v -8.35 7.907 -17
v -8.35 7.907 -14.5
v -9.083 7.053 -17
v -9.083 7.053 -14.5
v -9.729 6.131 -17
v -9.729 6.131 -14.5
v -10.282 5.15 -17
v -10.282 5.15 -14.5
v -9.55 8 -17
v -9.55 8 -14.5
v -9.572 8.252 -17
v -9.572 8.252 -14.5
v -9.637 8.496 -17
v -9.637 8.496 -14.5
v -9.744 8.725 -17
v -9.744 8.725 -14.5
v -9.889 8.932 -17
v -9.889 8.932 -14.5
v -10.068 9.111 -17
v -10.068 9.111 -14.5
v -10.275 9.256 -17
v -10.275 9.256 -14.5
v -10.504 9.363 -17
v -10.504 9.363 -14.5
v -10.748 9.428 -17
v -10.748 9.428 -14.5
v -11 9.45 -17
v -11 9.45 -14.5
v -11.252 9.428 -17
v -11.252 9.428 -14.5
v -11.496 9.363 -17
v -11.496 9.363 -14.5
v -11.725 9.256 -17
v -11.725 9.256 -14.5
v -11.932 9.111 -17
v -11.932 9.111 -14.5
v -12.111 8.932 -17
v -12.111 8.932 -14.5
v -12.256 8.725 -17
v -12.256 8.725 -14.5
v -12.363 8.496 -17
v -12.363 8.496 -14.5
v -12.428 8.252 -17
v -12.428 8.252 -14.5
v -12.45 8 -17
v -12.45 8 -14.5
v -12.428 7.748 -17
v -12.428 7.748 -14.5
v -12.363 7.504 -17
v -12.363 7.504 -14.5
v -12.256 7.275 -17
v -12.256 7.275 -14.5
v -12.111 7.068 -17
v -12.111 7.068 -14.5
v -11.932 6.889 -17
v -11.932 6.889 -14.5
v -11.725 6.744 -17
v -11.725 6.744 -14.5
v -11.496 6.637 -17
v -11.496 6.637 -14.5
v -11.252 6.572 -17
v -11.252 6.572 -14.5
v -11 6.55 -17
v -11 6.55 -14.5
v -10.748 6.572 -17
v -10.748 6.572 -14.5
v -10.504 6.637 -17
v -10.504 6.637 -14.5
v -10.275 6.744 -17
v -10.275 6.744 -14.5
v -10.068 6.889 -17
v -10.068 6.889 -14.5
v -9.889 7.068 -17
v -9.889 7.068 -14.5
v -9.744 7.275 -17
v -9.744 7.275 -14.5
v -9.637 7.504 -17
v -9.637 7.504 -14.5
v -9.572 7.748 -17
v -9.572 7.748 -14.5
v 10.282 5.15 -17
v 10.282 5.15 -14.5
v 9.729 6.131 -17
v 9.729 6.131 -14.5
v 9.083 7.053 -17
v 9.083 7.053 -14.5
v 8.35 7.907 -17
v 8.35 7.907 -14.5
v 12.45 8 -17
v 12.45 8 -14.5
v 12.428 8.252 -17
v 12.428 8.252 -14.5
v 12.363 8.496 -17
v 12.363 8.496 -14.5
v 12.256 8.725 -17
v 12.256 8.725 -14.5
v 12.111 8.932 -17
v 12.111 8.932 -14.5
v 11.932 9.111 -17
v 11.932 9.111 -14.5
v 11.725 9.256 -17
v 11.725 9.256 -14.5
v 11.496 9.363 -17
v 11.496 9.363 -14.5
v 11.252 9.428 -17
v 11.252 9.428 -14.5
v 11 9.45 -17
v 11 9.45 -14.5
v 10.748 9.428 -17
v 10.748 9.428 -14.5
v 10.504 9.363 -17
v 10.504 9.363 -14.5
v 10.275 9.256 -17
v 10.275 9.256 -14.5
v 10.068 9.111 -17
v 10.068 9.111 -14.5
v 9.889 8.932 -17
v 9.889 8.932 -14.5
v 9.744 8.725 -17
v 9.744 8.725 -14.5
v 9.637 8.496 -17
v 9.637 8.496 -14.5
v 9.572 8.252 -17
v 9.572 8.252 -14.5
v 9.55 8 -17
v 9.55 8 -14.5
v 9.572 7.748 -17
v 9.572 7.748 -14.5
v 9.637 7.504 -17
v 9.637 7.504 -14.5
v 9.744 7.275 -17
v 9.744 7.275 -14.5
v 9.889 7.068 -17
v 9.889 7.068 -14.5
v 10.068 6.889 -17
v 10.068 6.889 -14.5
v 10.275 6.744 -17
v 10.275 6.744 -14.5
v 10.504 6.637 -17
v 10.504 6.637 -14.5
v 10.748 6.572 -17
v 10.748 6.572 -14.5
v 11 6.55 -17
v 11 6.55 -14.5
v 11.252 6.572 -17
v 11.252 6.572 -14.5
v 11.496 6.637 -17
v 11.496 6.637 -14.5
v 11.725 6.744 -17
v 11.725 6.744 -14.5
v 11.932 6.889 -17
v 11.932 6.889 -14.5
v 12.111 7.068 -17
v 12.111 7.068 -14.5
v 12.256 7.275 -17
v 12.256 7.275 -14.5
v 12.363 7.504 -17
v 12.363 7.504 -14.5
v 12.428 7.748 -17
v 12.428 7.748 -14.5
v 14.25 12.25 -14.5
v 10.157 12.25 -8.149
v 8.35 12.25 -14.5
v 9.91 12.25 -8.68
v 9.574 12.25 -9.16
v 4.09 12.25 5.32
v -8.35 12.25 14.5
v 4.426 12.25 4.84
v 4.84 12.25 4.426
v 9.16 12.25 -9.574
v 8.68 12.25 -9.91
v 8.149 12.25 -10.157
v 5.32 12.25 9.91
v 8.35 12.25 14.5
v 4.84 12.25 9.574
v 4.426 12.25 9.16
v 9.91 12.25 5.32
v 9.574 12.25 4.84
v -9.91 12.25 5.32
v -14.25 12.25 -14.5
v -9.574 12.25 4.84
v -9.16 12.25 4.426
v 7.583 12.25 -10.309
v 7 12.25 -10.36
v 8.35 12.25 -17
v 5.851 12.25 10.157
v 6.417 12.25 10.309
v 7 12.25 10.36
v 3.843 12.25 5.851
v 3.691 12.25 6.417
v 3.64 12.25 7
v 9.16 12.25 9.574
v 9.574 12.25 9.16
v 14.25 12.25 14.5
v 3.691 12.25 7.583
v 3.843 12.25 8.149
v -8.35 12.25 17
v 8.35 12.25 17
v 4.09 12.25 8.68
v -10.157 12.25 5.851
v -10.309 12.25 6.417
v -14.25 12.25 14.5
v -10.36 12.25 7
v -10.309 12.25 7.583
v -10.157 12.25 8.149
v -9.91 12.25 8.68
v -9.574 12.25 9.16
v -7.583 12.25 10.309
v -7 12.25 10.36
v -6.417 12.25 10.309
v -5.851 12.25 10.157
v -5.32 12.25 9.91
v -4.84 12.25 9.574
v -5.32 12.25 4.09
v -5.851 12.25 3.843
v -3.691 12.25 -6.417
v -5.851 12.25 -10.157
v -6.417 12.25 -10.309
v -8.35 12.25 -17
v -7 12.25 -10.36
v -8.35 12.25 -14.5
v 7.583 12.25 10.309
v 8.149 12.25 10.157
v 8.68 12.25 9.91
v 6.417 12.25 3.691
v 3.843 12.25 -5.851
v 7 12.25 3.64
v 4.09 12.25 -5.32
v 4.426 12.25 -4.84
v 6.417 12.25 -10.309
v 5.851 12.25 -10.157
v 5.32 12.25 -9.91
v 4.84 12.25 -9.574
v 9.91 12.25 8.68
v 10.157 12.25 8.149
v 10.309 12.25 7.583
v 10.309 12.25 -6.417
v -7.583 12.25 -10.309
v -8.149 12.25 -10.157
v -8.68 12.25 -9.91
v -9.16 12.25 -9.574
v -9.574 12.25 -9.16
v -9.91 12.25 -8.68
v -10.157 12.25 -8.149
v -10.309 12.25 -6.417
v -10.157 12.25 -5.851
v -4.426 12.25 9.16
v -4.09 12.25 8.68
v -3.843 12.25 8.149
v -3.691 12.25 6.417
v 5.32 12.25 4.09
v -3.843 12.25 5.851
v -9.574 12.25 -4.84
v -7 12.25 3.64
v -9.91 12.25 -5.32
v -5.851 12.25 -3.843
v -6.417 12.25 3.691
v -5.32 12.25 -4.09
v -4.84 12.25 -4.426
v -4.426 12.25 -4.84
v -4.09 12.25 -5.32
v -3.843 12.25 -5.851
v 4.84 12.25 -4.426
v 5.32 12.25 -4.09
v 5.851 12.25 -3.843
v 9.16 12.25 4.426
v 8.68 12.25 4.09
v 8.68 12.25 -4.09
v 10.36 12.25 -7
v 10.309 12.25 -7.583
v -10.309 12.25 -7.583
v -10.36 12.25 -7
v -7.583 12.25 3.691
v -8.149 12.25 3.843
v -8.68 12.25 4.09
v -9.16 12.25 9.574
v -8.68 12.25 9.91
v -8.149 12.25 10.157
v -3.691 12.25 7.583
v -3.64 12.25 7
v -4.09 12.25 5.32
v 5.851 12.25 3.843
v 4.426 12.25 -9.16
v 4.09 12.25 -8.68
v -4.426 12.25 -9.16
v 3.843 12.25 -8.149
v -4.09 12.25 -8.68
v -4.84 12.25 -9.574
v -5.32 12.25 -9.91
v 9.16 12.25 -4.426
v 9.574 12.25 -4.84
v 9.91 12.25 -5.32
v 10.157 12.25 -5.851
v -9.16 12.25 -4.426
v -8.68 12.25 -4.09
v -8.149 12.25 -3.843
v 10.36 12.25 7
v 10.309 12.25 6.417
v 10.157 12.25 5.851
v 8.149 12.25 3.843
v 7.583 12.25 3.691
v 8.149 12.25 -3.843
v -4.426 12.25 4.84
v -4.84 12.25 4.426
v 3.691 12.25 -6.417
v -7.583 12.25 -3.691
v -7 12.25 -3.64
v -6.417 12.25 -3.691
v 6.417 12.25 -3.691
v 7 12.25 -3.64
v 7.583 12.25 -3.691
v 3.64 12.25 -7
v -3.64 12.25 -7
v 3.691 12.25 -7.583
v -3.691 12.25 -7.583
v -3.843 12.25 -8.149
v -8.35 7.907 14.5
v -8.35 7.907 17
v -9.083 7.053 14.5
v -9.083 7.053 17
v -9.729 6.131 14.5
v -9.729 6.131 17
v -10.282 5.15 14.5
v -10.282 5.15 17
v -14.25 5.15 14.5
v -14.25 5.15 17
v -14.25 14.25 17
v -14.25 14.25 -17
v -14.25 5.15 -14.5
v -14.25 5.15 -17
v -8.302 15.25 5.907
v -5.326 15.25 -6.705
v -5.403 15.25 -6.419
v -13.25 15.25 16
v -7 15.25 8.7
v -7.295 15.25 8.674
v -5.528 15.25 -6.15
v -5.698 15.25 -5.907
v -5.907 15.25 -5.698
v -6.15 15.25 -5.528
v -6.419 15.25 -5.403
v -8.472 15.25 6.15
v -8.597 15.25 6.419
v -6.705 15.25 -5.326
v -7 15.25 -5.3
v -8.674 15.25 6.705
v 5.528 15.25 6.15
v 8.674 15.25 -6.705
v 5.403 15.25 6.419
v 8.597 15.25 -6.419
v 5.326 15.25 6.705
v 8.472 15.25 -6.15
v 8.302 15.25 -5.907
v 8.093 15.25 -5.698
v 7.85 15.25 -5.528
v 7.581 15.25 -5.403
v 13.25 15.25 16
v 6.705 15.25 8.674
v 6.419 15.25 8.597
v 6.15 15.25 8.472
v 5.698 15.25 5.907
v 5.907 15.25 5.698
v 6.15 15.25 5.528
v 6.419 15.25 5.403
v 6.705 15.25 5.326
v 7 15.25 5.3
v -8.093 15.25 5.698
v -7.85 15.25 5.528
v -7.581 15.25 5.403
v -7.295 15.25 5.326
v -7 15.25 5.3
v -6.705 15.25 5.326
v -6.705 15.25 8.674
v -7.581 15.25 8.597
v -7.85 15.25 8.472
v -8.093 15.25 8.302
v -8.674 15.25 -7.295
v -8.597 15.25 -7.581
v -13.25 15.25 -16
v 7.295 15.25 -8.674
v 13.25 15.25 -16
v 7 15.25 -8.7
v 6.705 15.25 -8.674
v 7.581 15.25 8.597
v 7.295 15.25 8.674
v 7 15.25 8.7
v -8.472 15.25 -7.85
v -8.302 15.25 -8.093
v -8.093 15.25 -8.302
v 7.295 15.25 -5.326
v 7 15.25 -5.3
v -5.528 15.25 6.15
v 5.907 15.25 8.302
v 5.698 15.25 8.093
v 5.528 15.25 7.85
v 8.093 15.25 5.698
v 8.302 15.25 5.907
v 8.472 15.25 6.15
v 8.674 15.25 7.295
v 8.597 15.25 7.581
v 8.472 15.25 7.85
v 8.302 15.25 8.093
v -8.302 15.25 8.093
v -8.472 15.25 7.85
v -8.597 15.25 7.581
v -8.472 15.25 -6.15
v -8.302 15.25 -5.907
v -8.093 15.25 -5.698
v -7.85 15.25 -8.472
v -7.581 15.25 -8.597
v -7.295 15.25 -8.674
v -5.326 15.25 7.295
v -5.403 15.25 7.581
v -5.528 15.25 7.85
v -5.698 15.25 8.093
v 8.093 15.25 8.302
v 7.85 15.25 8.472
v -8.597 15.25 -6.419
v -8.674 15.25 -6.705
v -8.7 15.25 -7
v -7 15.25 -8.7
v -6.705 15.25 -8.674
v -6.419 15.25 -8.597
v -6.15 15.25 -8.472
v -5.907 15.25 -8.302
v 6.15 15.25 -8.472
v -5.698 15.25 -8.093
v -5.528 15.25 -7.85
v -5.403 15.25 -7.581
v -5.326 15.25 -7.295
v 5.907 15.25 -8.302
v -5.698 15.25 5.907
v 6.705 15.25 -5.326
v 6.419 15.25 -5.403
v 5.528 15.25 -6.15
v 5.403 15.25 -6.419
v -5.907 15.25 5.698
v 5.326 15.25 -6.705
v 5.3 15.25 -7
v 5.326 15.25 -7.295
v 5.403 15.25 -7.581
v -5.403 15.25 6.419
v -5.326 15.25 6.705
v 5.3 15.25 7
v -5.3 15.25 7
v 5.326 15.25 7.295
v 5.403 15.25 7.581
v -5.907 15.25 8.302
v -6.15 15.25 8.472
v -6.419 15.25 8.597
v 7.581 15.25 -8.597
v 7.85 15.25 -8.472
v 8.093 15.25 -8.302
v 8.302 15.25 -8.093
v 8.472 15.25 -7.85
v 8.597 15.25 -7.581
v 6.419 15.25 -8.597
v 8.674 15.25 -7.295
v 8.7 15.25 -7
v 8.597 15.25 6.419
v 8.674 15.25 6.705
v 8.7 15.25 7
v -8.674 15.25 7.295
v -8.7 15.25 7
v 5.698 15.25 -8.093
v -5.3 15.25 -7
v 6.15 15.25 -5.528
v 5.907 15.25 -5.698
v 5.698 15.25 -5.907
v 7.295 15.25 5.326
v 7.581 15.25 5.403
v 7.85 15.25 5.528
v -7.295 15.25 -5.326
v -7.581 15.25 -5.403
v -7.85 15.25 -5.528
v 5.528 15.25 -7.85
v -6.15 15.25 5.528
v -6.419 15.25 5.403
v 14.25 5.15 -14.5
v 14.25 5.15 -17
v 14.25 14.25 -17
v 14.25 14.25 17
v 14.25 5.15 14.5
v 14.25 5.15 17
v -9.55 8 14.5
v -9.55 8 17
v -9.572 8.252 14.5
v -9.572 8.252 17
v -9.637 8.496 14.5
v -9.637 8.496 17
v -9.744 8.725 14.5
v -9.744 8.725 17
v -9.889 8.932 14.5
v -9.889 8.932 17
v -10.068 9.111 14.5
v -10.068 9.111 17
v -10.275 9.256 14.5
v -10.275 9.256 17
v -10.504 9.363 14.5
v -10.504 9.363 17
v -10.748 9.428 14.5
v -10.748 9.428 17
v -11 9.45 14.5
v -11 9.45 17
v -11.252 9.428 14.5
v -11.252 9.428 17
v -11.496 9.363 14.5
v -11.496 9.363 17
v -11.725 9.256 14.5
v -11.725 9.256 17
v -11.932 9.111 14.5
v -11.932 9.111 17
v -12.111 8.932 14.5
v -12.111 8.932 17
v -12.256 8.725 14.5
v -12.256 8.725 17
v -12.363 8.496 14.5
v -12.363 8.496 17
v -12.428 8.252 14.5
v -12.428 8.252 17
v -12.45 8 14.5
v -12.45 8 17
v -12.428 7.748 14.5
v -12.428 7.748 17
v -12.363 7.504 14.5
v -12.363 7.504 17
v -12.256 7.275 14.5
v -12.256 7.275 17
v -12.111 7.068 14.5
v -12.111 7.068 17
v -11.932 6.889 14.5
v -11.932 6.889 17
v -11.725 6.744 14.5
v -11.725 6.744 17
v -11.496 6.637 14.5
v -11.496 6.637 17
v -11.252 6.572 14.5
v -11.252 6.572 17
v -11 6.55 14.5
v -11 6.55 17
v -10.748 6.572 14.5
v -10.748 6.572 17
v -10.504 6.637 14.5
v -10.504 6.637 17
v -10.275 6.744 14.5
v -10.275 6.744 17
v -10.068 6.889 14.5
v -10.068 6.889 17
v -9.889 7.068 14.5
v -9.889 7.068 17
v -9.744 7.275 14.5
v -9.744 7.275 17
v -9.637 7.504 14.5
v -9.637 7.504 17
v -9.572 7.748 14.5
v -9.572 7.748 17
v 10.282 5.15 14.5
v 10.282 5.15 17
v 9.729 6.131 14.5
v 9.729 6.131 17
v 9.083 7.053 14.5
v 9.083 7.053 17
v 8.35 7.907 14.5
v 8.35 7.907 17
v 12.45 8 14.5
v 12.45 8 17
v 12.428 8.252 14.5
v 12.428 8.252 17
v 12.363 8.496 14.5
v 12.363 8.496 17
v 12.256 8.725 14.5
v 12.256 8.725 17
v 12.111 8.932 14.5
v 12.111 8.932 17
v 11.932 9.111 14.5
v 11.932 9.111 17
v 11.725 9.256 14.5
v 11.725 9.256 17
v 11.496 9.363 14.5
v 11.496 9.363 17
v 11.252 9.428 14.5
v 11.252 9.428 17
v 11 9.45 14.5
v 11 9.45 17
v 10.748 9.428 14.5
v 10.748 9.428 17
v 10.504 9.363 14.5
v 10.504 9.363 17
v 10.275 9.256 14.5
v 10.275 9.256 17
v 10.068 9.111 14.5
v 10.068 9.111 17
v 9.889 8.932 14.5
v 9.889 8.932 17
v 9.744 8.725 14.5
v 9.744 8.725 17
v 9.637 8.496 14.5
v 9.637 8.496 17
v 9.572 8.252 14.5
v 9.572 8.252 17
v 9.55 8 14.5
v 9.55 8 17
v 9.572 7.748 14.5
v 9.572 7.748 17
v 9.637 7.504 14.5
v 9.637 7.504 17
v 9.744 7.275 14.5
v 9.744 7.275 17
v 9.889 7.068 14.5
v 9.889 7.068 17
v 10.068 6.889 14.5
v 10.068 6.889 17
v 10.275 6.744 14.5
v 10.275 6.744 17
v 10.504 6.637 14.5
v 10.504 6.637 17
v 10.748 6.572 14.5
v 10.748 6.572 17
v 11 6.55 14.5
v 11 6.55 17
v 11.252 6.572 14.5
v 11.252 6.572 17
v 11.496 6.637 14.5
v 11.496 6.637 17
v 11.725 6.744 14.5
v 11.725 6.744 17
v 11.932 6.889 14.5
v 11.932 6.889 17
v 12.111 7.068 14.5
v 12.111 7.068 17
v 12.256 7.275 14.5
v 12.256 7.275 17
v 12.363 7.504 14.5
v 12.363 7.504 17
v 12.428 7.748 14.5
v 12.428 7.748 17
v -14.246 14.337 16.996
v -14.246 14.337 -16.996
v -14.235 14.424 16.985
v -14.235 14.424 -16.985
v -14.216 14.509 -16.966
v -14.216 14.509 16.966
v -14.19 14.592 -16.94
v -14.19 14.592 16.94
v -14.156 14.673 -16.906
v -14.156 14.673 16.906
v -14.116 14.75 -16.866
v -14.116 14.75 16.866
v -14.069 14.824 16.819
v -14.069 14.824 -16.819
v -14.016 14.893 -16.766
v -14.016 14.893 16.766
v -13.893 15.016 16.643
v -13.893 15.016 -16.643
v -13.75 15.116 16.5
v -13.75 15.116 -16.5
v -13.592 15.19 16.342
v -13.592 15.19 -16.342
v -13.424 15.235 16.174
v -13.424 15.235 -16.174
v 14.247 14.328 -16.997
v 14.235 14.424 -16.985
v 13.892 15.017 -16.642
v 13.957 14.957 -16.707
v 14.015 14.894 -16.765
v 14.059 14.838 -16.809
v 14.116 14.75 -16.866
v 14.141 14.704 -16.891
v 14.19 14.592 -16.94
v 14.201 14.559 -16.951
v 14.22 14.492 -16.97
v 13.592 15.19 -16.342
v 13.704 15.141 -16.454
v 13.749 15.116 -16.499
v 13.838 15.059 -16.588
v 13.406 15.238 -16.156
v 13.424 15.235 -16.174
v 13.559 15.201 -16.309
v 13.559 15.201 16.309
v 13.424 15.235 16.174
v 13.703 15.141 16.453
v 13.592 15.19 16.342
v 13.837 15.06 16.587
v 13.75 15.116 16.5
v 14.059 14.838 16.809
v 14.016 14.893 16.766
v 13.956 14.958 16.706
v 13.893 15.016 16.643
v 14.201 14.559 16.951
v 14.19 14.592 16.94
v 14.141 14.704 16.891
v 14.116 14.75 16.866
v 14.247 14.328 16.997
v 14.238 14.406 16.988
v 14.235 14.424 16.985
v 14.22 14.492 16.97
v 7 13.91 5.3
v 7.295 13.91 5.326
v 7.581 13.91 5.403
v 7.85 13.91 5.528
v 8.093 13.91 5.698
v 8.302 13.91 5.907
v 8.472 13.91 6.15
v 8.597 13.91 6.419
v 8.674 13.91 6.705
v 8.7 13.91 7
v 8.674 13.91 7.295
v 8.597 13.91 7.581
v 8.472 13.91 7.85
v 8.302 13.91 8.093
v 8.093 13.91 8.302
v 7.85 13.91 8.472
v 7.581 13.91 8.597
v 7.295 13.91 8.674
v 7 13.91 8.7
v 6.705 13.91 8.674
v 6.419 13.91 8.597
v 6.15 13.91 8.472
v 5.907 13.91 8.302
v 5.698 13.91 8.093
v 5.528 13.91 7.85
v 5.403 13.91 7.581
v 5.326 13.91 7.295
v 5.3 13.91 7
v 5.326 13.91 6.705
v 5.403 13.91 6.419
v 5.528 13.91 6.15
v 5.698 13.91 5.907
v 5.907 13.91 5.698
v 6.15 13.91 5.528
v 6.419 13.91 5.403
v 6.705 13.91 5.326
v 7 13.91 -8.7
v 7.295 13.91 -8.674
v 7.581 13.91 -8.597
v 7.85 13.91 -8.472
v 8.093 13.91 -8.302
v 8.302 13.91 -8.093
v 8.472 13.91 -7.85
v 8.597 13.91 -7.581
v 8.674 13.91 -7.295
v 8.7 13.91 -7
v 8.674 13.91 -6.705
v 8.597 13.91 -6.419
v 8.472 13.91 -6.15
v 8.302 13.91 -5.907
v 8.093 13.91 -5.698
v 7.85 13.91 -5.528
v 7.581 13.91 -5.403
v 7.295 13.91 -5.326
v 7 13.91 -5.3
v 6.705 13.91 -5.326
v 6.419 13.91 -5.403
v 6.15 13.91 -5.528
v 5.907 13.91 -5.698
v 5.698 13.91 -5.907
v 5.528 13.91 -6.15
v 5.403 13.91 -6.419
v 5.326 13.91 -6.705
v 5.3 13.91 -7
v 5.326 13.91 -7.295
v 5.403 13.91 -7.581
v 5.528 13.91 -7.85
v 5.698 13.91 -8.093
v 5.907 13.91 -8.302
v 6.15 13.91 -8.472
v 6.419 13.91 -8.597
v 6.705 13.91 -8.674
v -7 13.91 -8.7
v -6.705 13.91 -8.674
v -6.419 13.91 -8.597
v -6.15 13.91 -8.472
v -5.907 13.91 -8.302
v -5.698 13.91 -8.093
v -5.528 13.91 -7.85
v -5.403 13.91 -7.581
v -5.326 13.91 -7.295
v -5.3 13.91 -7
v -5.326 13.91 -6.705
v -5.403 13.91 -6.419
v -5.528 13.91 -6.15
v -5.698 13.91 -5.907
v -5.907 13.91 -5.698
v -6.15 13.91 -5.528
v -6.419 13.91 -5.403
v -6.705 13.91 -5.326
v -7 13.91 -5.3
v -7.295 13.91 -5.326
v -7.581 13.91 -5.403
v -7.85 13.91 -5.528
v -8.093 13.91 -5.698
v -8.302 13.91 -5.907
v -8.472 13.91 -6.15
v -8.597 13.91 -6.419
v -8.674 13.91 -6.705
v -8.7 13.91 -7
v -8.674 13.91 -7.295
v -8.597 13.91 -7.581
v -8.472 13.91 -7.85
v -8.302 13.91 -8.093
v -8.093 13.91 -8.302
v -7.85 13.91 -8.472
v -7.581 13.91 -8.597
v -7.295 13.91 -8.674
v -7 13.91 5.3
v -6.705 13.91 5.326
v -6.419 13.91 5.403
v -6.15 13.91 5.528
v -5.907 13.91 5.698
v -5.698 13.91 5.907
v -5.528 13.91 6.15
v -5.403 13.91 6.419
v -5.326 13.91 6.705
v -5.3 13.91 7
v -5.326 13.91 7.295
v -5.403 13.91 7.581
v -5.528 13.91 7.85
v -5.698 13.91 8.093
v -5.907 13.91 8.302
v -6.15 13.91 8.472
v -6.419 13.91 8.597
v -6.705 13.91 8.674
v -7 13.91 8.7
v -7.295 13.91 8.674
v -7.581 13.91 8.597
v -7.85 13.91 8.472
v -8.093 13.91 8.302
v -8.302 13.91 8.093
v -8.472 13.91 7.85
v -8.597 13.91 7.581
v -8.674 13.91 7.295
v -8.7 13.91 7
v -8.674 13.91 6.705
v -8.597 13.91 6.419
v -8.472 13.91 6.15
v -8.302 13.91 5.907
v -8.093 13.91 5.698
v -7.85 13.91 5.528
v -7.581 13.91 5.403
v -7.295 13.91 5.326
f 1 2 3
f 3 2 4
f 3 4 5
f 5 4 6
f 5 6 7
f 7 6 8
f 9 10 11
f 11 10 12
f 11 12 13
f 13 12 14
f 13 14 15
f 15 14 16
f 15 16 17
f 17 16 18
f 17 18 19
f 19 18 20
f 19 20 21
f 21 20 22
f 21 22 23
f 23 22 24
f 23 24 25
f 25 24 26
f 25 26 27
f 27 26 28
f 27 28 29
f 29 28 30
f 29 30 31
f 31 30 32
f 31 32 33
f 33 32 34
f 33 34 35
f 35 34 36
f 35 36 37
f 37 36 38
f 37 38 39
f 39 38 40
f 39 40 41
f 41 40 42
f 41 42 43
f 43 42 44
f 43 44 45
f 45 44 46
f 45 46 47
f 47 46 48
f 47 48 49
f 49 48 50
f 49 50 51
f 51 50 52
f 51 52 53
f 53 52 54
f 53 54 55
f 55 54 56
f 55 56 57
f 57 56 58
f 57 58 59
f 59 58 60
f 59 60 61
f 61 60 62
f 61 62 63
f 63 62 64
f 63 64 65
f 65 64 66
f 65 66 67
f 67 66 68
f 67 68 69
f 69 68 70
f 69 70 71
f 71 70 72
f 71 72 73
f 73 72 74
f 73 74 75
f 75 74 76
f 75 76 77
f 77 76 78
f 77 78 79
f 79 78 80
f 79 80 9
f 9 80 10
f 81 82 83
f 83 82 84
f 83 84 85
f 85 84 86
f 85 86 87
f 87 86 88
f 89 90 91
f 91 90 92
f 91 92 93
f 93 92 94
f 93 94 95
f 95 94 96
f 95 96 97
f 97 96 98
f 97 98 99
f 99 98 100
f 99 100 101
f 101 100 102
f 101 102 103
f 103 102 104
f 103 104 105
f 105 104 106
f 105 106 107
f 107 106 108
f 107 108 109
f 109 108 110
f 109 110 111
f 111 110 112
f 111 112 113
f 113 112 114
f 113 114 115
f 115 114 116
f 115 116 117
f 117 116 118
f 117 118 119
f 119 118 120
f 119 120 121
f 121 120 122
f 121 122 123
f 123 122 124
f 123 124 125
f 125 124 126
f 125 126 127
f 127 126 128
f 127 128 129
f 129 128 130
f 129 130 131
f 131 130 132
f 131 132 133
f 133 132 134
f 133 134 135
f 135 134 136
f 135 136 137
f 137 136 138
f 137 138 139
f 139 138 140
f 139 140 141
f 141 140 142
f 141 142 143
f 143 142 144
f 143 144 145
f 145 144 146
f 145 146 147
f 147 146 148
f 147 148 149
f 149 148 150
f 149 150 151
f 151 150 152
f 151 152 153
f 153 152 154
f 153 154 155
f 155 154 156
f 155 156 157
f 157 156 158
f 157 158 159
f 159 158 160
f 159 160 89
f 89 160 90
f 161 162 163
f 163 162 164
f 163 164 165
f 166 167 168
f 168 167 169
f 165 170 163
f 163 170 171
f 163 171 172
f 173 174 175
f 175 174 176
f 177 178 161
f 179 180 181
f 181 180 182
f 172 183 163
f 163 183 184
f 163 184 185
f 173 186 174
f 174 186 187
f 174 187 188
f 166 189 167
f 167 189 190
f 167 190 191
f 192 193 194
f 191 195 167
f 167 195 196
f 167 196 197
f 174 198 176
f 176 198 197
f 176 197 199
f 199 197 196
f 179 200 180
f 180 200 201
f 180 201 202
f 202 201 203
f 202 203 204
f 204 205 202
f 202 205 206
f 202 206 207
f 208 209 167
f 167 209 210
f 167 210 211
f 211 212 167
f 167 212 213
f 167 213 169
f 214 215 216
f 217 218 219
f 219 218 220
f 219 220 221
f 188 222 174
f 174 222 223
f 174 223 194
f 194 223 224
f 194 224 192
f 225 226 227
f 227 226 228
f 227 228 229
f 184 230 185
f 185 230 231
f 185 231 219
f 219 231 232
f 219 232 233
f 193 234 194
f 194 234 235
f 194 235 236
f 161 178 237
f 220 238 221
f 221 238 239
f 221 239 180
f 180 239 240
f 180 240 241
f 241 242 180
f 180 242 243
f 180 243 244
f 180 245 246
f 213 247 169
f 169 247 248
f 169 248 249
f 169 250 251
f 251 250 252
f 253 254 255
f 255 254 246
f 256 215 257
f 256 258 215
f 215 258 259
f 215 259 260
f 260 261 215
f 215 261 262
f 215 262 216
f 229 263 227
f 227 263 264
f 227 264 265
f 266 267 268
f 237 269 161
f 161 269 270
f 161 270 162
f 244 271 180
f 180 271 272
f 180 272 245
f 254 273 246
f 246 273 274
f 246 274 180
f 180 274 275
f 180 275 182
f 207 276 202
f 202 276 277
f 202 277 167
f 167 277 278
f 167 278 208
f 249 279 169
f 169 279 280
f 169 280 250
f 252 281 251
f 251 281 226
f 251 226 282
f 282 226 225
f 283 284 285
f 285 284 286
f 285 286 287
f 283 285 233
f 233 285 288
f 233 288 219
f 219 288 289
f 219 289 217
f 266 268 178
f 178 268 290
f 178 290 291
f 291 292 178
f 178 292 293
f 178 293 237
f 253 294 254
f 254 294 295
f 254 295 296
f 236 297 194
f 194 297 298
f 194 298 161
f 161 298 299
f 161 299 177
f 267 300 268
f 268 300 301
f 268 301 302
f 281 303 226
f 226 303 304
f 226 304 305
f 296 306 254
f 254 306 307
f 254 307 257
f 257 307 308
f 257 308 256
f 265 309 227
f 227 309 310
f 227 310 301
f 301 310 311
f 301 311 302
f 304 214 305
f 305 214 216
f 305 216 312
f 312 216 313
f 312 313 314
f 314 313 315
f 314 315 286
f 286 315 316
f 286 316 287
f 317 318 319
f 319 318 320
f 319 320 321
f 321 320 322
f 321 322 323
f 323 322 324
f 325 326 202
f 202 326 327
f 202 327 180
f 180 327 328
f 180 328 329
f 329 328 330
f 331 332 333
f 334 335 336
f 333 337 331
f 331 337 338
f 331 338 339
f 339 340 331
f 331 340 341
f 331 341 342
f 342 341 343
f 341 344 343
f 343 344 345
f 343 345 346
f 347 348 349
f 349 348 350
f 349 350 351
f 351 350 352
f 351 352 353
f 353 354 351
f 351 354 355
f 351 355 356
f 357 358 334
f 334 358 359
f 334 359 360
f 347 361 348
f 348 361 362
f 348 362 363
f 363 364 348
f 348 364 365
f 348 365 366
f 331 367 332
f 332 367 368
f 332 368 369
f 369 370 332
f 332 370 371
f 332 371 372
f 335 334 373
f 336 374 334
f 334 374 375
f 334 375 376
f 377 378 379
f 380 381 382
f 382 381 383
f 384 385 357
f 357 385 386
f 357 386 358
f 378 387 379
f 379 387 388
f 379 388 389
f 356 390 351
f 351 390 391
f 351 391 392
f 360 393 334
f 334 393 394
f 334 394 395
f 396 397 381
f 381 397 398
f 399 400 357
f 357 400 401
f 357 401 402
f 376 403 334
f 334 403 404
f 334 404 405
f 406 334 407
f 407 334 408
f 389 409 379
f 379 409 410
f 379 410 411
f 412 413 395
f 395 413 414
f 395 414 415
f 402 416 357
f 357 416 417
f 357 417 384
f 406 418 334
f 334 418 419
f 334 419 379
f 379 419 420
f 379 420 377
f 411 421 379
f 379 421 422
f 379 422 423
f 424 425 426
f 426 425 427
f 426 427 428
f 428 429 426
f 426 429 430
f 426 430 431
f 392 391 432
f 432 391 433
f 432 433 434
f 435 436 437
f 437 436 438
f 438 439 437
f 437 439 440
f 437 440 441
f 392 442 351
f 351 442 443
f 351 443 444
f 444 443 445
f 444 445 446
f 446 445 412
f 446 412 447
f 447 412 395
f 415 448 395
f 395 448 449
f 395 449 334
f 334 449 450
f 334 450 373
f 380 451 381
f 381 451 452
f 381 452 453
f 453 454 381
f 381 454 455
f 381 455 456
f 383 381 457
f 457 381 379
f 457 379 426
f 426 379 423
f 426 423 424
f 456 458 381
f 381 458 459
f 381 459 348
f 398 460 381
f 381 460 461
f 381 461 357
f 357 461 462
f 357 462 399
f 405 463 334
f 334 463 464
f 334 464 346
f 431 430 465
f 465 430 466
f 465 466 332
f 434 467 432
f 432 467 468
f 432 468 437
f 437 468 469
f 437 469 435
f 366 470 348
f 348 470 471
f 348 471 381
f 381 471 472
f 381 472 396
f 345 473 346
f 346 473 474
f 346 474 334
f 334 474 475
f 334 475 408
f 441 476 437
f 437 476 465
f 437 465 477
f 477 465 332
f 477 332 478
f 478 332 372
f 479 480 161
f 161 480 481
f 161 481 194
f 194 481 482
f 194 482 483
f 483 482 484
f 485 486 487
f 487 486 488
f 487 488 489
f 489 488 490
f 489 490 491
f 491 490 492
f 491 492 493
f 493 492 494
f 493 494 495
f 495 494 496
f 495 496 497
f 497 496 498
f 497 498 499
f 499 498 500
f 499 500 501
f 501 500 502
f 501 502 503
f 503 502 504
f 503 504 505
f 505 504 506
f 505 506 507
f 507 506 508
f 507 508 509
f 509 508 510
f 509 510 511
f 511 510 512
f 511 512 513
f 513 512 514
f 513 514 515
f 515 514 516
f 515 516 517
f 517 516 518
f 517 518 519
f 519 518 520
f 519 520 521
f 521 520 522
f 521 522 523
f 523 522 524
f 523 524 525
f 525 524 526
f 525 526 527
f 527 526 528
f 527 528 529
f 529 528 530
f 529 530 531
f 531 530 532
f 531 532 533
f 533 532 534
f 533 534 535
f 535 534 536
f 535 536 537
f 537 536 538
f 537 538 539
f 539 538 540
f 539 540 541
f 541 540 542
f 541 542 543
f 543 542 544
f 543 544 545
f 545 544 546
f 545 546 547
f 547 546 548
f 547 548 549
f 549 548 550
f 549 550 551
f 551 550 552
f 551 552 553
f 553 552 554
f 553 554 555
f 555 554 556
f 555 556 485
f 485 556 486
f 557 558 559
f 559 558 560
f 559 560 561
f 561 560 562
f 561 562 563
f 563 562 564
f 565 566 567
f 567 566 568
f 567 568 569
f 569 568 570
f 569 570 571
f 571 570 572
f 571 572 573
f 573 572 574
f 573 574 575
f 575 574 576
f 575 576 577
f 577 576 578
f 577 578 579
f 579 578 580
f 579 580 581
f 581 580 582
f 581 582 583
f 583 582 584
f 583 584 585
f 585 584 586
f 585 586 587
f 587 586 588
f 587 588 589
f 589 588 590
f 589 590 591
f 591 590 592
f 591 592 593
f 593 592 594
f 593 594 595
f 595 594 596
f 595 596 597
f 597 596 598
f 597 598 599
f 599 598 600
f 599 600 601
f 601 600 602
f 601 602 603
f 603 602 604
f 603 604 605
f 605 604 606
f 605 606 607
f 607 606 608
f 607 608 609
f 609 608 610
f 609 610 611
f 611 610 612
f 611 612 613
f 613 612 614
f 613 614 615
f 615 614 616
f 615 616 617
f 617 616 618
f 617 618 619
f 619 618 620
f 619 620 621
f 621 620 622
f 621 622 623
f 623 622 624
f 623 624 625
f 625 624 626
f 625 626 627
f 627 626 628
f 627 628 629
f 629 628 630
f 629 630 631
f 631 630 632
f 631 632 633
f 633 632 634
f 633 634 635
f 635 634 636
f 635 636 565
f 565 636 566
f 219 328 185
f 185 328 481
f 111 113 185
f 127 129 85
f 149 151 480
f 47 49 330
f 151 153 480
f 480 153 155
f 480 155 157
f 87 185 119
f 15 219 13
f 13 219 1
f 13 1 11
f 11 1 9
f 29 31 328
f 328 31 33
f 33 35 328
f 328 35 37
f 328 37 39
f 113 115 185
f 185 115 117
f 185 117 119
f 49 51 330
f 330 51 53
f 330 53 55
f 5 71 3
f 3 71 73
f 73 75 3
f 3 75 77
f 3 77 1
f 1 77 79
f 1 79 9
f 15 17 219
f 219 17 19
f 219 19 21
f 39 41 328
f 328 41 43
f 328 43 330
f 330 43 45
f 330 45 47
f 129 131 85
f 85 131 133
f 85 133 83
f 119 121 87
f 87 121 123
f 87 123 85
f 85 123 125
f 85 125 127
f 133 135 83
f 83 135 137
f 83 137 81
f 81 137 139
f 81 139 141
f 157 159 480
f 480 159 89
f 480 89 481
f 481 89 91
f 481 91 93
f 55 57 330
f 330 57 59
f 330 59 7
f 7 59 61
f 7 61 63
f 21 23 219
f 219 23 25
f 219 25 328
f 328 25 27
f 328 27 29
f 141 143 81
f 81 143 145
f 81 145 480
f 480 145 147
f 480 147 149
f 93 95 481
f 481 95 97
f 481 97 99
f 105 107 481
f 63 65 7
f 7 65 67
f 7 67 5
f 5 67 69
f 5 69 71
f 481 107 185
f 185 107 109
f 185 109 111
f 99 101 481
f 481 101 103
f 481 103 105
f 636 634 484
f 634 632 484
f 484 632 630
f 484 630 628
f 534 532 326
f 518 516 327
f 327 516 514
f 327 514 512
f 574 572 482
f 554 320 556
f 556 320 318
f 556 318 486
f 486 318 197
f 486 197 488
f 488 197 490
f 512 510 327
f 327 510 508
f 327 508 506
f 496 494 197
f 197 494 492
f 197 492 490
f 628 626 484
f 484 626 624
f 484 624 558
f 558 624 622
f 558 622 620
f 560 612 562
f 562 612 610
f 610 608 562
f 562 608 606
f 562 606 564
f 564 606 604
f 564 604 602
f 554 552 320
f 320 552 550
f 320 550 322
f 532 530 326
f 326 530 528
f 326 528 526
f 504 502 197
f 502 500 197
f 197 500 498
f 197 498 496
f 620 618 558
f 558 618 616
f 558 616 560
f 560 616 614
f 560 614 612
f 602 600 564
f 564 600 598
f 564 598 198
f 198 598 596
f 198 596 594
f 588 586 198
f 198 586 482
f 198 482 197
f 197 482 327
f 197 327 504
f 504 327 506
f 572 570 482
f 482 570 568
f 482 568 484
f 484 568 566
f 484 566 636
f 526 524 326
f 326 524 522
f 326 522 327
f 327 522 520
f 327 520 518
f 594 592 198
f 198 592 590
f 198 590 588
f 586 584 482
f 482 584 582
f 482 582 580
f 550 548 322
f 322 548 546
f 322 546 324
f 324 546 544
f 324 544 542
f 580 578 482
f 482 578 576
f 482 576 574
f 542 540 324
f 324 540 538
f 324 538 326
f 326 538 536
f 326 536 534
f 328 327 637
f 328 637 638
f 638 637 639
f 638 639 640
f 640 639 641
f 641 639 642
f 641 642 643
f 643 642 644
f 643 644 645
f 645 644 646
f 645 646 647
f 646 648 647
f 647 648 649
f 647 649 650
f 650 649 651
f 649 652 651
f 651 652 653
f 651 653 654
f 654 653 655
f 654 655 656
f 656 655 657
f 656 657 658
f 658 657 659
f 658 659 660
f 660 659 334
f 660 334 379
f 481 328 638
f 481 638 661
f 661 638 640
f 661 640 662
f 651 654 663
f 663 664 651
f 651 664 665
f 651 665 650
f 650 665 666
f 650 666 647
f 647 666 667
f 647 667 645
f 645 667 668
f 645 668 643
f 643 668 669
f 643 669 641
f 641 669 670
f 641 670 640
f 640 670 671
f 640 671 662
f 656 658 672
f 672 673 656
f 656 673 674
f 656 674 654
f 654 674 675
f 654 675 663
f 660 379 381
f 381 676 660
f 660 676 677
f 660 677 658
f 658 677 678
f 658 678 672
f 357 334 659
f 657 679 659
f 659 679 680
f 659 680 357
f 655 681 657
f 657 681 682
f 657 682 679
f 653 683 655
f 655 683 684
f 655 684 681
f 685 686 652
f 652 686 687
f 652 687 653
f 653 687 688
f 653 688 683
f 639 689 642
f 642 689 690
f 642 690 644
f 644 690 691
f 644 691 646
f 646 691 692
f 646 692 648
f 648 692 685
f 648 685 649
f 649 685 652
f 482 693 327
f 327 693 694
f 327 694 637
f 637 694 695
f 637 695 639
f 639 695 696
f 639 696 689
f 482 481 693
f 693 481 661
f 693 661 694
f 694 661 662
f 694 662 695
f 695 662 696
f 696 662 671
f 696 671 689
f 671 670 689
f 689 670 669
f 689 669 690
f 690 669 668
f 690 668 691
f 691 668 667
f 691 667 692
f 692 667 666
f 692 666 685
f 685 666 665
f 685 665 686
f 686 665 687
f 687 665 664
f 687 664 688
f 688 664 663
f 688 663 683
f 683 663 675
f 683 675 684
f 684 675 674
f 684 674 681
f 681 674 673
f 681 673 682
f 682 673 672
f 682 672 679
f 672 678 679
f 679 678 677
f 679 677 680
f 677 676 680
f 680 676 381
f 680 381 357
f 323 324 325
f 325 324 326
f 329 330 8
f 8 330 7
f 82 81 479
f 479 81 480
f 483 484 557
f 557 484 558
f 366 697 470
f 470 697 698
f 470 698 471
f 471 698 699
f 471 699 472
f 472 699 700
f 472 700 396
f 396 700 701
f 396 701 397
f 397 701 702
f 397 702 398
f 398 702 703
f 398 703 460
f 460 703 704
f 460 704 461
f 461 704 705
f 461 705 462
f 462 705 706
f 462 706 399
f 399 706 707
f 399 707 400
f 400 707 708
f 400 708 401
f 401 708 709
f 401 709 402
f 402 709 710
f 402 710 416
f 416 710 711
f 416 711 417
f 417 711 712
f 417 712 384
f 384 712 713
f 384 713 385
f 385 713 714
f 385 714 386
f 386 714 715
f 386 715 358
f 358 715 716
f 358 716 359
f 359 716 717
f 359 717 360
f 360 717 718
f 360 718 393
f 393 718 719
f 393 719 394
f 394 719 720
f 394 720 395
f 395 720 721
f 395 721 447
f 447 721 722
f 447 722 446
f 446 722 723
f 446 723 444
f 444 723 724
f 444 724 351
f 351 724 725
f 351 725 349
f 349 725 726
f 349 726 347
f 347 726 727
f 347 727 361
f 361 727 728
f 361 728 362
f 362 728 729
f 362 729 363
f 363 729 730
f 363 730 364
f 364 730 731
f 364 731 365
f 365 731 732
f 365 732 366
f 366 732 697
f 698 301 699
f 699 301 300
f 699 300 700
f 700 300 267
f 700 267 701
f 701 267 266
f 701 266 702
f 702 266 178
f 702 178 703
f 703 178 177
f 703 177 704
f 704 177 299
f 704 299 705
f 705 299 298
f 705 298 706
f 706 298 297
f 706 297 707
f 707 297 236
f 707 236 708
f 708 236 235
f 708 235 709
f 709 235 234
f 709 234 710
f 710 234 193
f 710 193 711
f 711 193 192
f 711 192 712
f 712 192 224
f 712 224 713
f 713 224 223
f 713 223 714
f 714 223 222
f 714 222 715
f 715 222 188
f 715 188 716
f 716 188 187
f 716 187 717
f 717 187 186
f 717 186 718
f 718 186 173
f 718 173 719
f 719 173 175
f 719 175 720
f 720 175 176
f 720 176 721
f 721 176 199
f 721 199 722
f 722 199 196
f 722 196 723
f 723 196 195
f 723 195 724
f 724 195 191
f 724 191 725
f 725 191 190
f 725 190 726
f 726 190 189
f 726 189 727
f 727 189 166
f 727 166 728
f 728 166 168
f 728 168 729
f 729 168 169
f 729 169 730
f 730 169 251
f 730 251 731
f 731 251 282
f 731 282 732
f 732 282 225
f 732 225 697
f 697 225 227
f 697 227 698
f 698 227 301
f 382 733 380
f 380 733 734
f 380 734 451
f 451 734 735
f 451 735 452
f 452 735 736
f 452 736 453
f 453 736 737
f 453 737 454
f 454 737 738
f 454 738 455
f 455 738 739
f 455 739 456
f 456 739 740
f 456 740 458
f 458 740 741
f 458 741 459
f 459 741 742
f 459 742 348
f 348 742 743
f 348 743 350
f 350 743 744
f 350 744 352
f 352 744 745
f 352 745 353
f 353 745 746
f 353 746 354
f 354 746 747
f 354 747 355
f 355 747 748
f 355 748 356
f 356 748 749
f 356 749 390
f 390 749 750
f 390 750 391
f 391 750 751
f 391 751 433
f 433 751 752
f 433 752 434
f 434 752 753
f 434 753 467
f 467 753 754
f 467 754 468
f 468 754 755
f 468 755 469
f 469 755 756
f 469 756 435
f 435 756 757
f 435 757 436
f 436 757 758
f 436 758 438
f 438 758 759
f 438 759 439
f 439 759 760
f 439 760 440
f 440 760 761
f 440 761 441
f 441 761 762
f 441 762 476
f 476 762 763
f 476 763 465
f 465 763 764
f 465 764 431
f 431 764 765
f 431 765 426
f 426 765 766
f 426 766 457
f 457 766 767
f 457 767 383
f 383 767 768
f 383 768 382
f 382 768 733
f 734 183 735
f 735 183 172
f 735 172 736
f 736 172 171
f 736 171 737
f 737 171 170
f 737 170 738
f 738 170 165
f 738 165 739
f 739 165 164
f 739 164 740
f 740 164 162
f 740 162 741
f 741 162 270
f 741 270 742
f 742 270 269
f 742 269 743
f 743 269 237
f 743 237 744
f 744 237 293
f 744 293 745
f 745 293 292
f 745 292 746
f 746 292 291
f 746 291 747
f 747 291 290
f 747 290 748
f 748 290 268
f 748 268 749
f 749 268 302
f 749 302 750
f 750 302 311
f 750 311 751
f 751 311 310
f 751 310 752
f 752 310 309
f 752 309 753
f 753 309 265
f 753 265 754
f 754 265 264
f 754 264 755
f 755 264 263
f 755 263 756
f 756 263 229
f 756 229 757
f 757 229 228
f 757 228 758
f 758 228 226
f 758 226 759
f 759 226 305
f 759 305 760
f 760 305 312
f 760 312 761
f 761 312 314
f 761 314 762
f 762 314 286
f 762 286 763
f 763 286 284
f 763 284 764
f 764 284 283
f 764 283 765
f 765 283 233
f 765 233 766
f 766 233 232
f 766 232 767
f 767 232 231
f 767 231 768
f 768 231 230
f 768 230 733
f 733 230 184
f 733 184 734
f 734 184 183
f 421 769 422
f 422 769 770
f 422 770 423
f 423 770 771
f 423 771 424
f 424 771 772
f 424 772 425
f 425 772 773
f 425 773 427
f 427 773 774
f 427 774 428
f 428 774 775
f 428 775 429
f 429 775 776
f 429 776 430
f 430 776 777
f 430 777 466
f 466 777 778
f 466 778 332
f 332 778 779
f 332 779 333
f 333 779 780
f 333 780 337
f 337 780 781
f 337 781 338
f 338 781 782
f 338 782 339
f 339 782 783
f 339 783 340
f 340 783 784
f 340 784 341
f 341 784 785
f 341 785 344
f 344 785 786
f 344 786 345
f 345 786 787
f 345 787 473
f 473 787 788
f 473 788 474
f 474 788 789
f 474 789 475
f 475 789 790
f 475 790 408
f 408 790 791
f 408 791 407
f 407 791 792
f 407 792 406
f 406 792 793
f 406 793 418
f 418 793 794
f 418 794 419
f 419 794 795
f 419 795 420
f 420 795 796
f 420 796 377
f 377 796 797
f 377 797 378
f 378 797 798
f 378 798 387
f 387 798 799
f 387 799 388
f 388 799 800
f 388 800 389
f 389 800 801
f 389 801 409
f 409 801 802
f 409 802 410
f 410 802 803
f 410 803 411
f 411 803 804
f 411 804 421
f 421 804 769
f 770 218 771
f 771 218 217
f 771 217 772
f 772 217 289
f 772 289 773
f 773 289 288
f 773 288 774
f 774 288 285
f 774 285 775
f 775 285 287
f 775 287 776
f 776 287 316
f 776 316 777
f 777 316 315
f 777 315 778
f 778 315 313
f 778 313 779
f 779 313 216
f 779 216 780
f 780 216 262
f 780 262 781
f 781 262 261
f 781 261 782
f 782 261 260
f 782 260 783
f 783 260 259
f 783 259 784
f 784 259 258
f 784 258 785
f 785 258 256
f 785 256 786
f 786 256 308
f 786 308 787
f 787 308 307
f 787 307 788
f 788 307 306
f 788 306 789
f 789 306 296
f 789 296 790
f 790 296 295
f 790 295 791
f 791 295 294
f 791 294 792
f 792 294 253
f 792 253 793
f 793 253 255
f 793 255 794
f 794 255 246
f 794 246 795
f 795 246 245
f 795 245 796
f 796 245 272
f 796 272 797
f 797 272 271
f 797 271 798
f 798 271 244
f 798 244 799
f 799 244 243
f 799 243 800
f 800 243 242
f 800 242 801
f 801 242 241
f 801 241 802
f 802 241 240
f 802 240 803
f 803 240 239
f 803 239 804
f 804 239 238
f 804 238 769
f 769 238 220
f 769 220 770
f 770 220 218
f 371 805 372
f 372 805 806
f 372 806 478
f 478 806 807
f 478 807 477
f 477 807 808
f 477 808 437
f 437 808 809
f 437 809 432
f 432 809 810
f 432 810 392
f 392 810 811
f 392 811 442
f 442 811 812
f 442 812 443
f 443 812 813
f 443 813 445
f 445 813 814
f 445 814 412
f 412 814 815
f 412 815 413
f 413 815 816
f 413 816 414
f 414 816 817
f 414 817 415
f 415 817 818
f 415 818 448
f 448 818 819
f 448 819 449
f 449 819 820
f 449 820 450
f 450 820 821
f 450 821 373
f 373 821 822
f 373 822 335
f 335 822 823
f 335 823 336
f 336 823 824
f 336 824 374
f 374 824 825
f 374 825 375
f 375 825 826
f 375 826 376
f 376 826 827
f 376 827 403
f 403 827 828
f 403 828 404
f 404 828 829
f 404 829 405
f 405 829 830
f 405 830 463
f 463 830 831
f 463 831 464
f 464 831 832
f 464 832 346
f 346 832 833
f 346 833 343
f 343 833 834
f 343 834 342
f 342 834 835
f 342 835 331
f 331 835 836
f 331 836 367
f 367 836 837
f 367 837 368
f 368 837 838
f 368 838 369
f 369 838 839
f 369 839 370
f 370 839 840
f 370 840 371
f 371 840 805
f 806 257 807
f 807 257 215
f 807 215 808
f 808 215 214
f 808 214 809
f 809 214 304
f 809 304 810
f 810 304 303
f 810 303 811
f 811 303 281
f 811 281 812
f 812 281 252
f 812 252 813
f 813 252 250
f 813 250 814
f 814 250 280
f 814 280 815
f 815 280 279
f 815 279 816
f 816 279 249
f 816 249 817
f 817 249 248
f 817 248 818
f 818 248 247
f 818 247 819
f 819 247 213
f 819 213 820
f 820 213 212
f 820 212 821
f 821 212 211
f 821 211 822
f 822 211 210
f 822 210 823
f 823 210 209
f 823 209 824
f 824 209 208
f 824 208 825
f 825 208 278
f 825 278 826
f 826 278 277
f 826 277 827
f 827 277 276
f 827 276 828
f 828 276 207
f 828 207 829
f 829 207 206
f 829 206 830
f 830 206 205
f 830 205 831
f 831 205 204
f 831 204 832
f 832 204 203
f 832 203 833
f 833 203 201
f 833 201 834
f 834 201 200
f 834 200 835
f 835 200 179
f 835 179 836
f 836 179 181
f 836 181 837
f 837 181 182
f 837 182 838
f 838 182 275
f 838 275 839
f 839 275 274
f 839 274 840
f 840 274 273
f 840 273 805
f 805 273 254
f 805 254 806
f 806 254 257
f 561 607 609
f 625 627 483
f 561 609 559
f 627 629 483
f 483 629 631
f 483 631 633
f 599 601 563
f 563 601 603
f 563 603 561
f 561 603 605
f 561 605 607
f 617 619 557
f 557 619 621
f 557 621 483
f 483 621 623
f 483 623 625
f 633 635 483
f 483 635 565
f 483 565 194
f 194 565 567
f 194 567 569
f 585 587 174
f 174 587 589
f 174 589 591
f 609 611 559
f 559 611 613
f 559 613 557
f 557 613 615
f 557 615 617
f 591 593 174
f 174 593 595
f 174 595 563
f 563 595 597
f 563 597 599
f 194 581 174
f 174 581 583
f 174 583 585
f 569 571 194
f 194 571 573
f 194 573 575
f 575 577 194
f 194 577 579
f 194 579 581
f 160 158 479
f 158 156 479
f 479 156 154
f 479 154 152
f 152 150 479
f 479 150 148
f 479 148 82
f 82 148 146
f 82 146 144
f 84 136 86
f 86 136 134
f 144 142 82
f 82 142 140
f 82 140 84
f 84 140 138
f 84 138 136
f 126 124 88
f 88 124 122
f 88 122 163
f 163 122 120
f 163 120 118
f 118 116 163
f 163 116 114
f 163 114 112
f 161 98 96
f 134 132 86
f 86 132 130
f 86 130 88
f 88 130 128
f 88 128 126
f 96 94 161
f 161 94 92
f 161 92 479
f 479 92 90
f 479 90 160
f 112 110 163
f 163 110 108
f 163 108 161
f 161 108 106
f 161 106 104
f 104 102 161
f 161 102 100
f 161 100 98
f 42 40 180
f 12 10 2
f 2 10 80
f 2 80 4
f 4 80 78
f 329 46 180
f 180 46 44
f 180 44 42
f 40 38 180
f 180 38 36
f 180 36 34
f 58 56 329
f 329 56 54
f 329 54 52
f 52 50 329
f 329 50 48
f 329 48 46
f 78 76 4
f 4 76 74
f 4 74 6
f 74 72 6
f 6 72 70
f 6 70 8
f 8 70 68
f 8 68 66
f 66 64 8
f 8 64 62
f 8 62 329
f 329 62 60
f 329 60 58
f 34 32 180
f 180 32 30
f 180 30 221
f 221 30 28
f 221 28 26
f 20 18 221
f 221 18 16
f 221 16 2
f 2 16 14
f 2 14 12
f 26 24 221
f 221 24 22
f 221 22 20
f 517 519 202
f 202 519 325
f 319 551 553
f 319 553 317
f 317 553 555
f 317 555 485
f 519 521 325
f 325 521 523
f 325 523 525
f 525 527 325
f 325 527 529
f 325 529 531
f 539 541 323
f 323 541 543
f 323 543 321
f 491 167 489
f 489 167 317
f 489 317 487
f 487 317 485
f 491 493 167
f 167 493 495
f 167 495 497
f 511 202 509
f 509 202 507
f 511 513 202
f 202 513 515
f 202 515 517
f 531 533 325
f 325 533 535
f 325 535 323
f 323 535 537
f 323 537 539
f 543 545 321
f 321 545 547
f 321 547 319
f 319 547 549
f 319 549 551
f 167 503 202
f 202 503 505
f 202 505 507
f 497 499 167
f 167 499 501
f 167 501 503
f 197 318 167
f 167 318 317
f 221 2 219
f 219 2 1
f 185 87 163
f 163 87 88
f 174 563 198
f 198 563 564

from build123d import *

# Parameters (mm, degrees)
BOSS_EXTRUDE7_DEPTH                            = 17
BOSS_EXTRUDE7_DEPTH_BACK                       = 17
SKETCH1_R                                      = 1.45
SKETCH34_W                                     = 28.4
SKETCH34_H                                     = 7.5
CUT_EXTRUDE11_DEPTH                            = 37.521397837
SKETCH35_R                                     = 5
CUT_EXTRUDE12_DEPTH                            = 25.542055741
CSK_FOR_M3_HEX_SOCKET_COUNTERSUNK_CA_2_COUNT   = 2
CSK_FOR_M3_HEX_SOCKET_COUNTERSUNK_CA_2_PITCH   = 16.5
CSK_FOR_M3_HEX_SOCKET_COUNTERSUNK_CA_3_COUNT   = 2
CSK_FOR_M3_HEX_SOCKET_COUNTERSUNK_CA_3_PITCH   = 18
CSK_FOR_M3_HEX_SOCKET_COUNTERSUNK_CA_4_COUNT   = 2
CSK_FOR_M3_HEX_SOCKET_COUNTERSUNK_CA_4_PITCH   = 24.418230894
FILLET5_R                                      = 1
SKETCH41_W                                     = 28.5
SKETCH41_H                                     = 0.4
CUT_EXTRUDE13_DEPTH                            = 40.895175147
SKETCH47_W                                     = 24
SKETCH47_H                                     = 28
BOSS_EXTRUDE8_DEPTH                            = 3
CSK_FOR_M3_HEX_SOCKET_COUNTERSUNK_CA_5_A_COUNT = 2
CSK_FOR_M3_HEX_SOCKET_COUNTERSUNK_CA_5_A_PITCH = 9.899494937
CSK_FOR_M3_HEX_SOCKET_COUNTERSUNK_CA_6_COUNT   = 2
CSK_FOR_M3_HEX_SOCKET_COUNTERSUNK_CA_6_PITCH   = 9.899494937
CSK_FOR_M3_HEX_SOCKET_COUNTERSUNK_CA_7_COUNT   = 2
CSK_FOR_M3_HEX_SOCKET_COUNTERSUNK_CA_7_PITCH   = 9.899494937
CSK_FOR_M3_HEX_SOCKET_COUNTERSUNK_CA_8_COUNT   = 2
CSK_FOR_M3_HEX_SOCKET_COUNTERSUNK_CA_8_PITCH   = 9.899494937
SKETCH51_W                                     = 8.04998649
SKETCH51_H                                     = 7.642392238
BOSS_EXTRUDE9_DEPTH                            = 3
SKETCH53_W                                     = 29
SKETCH53_H                                     = 7.1
CUT_EXTRUDE14_DEPTH                            = 37.521397837
SKETCH54_W                                     = 16.7
SKETCH54_H                                     = 5.548131356
CUT_EXTRUDE15_DEPTH                            = 40.895175147


with BuildPart() as part:
    # Sketch1 → Boss-Extrude7 (new, two sides: drawn at the far end of the back side and taken through both)
    with BuildSketch(Plane.XY.offset(-BOSS_EXTRUDE7_DEPTH_BACK)):
        with BuildLine():
            Line((-14.25, 15.25), (-14.25, 4.75))
            Line((-14.25, 4.75), (-10.473180033, 4.75))
            ThreePointArc((-10.473180033, 4.75), (-9.502581542, 6.476954843), (-8.25, 8.011710179))
            Line((-8.25, 8.011710179), (-8.25, 12.25))
            Line((-8.25, 12.25), (8.25, 12.25))
            Line((8.25, 12.25), (8.25, 8.011710179))
            ThreePointArc((8.25, 8.011710179), (9.502581542, 6.476954843), (10.473180033, 4.75))
            Line((10.473180033, 4.75), (14.25, 4.75))
            Line((14.25, 4.75), (14.25, 15.25))
            Line((14.25, 15.25), (-14.25, 15.25))
        make_face()
        with Locations((11, 8)):
            Circle(SKETCH1_R, mode=Mode.SUBTRACT)
        with Locations((-11, 8)):
            Circle(SKETCH1_R, mode=Mode.SUBTRACT)
    extrude(amount=BOSS_EXTRUDE7_DEPTH + BOSS_EXTRUDE7_DEPTH_BACK)

    # Sketch34 → Cut-Extrude11 (cut, through all)
    with BuildSketch(Plane.ZY.offset(14.25)):
        with Locations((0, 8.5)):
            Rectangle(SKETCH34_W, SKETCH34_H)
    extrude(amount=-CUT_EXTRUDE11_DEPTH, mode=Mode.SUBTRACT)

    # Sketch35 → Cut-Extrude12 (cut, through all)
    with BuildSketch(Plane(origin=(0, 15.25, 0), x_dir=(1, 0, 0), z_dir=(0, 1, 0))):
        Circle(SKETCH35_R)
    extrude(amount=-CUT_EXTRUDE12_DEPTH, mode=Mode.SUBTRACT)

    # Sketch40 → CSK for M3 Hex Socket Countersunk Cap Sc (revolve, cut)
    with BuildSketch(Plane(origin=(-8.25, 12.25, 9), x_dir=(0, 0, -1), z_dir=(1, 0, 0))):
        Polygon((0, 0), (0, 3), (1.7, 3), (1.7, 1.66), (3.36, 0), align=None)
    csk_for_m3_hex_socket_countersunk_cap_sc = revolve(axis=Axis((-8.25, 5.9, 9), (0, 1, 0)), mode=Mode.SUBTRACT)

    # CSK for M3 Hex Socket Countersunk Ca 2: CSK for M3 Hex Socket Countersunk Cap Sc ×2
    with Locations(*[(i * CSK_FOR_M3_HEX_SOCKET_COUNTERSUNK_CA_2_PITCH, 0, 0) for i in range(1, CSK_FOR_M3_HEX_SOCKET_COUNTERSUNK_CA_2_COUNT)]):
        add(csk_for_m3_hex_socket_countersunk_cap_sc, mode=Mode.SUBTRACT)

    # CSK for M3 Hex Socket Countersunk Ca 3: CSK for M3 Hex Socket Countersunk Cap Sc ×2
    with Locations(*[(0, 0, -i * CSK_FOR_M3_HEX_SOCKET_COUNTERSUNK_CA_3_PITCH) for i in range(1, CSK_FOR_M3_HEX_SOCKET_COUNTERSUNK_CA_3_COUNT)]):
        add(csk_for_m3_hex_socket_countersunk_cap_sc, mode=Mode.SUBTRACT)

    # CSK for M3 Hex Socket Countersunk Ca 4: CSK for M3 Hex Socket Countersunk Cap Sc ×2
    with Locations(*[Vector(0.6757246285173466, 0, -0.7371541402007413) * (i * CSK_FOR_M3_HEX_SOCKET_COUNTERSUNK_CA_4_PITCH) for i in range(1, CSK_FOR_M3_HEX_SOCKET_COUNTERSUNK_CA_4_COUNT)]):
        add(csk_for_m3_hex_socket_countersunk_cap_sc, mode=Mode.SUBTRACT)

    # Fillet5
    fillet5_edges = [part.edges().sort_by_distance(p)[0] for p in [
        (14.25, 15.25, 0),
        (-14.25, 15.25, 0),
        (0, 15.25, -17),
        (0, 15.25, 17),
    ]]
    fillet(fillet5_edges, radius=FILLET5_R)

    # Sketch41 → Cut-Extrude13 (cut, through all)
    with BuildSketch(Plane.XY.offset(17)):
        with Locations((0, 4.95)):
            Rectangle(SKETCH41_W, SKETCH41_H)
    extrude(amount=-CUT_EXTRUDE13_DEPTH, mode=Mode.SUBTRACT)

    # Sketch47 → Boss-Extrude8 (add)
    with BuildSketch(Plane(origin=(0, 15.25, 0), x_dir=(1, 0, 0), z_dir=(0, 1, 0))):
        Rectangle(SKETCH47_W, SKETCH47_H)
    extrude(amount=-BOSS_EXTRUDE8_DEPTH)

    # Sketch50 → CSK for M3 Hex Socket Countersunk Ca 5 (revolve, cut)
    with BuildSketch(Plane(origin=(0, 12.25, 0), x_dir=(0, 0, -1), z_dir=(1, 0, 0))):
        Polygon((0, 0), (0, 3), (1.7, 3), (1.7, 1.66), (3.36, 0), align=None)
    csk_for_m3_hex_socket_countersunk_ca_5 = revolve(axis=Axis((0, 5.9, 0), (0, 1, 0)), mode=Mode.SUBTRACT)

    # CSK for M3 Hex Socket Countersunk Ca 5 a: CSK for M3 Hex Socket Countersunk Ca 5 ×2
    with Locations(*[Vector(-0.7071067811865477, 0, 0.7071067811865474) * (i * CSK_FOR_M3_HEX_SOCKET_COUNTERSUNK_CA_5_A_PITCH) for i in range(1, CSK_FOR_M3_HEX_SOCKET_COUNTERSUNK_CA_5_A_COUNT)]):
        add(csk_for_m3_hex_socket_countersunk_ca_5, mode=Mode.SUBTRACT)

    # CSK for M3 Hex Socket Countersunk Ca 6: CSK for M3 Hex Socket Countersunk Ca 5 ×2
    with Locations(*[Vector(-0.70710678118654, 0, -0.707106781186555) * (i * CSK_FOR_M3_HEX_SOCKET_COUNTERSUNK_CA_6_PITCH) for i in range(1, CSK_FOR_M3_HEX_SOCKET_COUNTERSUNK_CA_6_COUNT)]):
        add(csk_for_m3_hex_socket_countersunk_ca_5, mode=Mode.SUBTRACT)

    # CSK for M3 Hex Socket Countersunk Ca 7: CSK for M3 Hex Socket Countersunk Ca 5 ×2
    with Locations(*[Vector(0.7071067811865548, 0, -0.7071067811865404) * (i * CSK_FOR_M3_HEX_SOCKET_COUNTERSUNK_CA_7_PITCH) for i in range(1, CSK_FOR_M3_HEX_SOCKET_COUNTERSUNK_CA_7_COUNT)]):
        add(csk_for_m3_hex_socket_countersunk_ca_5, mode=Mode.SUBTRACT)

    # CSK for M3 Hex Socket Countersunk Ca 8: CSK for M3 Hex Socket Countersunk Ca 5 ×2
    with Locations(*[Vector(0.7071067811865477, 0, 0.7071067811865474) * (i * CSK_FOR_M3_HEX_SOCKET_COUNTERSUNK_CA_8_PITCH) for i in range(1, CSK_FOR_M3_HEX_SOCKET_COUNTERSUNK_CA_8_COUNT)]):
        add(csk_for_m3_hex_socket_countersunk_ca_5, mode=Mode.SUBTRACT)

    # Sketch51 → Boss-Extrude9 (add)
    with BuildSketch(Plane.XZ.offset(-12.25)):
        Rectangle(SKETCH51_W, SKETCH51_H)
    extrude(amount=-BOSS_EXTRUDE9_DEPTH)

    # Sketch53 → Cut-Extrude14 (cut, through all)
    with BuildSketch(Plane.ZY.offset(14.25)):
        with Locations((0, 8.7)):
            Rectangle(SKETCH53_W, SKETCH53_H)
    extrude(amount=-CUT_EXTRUDE14_DEPTH, mode=Mode.SUBTRACT)

    # Sketch54 → Cut-Extrude15 (cut, through all)
    with BuildSketch(Plane.XY.offset(17)):
        with Locations((0, 9.475934322)):
            Rectangle(SKETCH54_W, SKETCH54_H)
    extrude(amount=-CUT_EXTRUDE15_DEPTH, mode=Mode.SUBTRACT)


solid = part.part
